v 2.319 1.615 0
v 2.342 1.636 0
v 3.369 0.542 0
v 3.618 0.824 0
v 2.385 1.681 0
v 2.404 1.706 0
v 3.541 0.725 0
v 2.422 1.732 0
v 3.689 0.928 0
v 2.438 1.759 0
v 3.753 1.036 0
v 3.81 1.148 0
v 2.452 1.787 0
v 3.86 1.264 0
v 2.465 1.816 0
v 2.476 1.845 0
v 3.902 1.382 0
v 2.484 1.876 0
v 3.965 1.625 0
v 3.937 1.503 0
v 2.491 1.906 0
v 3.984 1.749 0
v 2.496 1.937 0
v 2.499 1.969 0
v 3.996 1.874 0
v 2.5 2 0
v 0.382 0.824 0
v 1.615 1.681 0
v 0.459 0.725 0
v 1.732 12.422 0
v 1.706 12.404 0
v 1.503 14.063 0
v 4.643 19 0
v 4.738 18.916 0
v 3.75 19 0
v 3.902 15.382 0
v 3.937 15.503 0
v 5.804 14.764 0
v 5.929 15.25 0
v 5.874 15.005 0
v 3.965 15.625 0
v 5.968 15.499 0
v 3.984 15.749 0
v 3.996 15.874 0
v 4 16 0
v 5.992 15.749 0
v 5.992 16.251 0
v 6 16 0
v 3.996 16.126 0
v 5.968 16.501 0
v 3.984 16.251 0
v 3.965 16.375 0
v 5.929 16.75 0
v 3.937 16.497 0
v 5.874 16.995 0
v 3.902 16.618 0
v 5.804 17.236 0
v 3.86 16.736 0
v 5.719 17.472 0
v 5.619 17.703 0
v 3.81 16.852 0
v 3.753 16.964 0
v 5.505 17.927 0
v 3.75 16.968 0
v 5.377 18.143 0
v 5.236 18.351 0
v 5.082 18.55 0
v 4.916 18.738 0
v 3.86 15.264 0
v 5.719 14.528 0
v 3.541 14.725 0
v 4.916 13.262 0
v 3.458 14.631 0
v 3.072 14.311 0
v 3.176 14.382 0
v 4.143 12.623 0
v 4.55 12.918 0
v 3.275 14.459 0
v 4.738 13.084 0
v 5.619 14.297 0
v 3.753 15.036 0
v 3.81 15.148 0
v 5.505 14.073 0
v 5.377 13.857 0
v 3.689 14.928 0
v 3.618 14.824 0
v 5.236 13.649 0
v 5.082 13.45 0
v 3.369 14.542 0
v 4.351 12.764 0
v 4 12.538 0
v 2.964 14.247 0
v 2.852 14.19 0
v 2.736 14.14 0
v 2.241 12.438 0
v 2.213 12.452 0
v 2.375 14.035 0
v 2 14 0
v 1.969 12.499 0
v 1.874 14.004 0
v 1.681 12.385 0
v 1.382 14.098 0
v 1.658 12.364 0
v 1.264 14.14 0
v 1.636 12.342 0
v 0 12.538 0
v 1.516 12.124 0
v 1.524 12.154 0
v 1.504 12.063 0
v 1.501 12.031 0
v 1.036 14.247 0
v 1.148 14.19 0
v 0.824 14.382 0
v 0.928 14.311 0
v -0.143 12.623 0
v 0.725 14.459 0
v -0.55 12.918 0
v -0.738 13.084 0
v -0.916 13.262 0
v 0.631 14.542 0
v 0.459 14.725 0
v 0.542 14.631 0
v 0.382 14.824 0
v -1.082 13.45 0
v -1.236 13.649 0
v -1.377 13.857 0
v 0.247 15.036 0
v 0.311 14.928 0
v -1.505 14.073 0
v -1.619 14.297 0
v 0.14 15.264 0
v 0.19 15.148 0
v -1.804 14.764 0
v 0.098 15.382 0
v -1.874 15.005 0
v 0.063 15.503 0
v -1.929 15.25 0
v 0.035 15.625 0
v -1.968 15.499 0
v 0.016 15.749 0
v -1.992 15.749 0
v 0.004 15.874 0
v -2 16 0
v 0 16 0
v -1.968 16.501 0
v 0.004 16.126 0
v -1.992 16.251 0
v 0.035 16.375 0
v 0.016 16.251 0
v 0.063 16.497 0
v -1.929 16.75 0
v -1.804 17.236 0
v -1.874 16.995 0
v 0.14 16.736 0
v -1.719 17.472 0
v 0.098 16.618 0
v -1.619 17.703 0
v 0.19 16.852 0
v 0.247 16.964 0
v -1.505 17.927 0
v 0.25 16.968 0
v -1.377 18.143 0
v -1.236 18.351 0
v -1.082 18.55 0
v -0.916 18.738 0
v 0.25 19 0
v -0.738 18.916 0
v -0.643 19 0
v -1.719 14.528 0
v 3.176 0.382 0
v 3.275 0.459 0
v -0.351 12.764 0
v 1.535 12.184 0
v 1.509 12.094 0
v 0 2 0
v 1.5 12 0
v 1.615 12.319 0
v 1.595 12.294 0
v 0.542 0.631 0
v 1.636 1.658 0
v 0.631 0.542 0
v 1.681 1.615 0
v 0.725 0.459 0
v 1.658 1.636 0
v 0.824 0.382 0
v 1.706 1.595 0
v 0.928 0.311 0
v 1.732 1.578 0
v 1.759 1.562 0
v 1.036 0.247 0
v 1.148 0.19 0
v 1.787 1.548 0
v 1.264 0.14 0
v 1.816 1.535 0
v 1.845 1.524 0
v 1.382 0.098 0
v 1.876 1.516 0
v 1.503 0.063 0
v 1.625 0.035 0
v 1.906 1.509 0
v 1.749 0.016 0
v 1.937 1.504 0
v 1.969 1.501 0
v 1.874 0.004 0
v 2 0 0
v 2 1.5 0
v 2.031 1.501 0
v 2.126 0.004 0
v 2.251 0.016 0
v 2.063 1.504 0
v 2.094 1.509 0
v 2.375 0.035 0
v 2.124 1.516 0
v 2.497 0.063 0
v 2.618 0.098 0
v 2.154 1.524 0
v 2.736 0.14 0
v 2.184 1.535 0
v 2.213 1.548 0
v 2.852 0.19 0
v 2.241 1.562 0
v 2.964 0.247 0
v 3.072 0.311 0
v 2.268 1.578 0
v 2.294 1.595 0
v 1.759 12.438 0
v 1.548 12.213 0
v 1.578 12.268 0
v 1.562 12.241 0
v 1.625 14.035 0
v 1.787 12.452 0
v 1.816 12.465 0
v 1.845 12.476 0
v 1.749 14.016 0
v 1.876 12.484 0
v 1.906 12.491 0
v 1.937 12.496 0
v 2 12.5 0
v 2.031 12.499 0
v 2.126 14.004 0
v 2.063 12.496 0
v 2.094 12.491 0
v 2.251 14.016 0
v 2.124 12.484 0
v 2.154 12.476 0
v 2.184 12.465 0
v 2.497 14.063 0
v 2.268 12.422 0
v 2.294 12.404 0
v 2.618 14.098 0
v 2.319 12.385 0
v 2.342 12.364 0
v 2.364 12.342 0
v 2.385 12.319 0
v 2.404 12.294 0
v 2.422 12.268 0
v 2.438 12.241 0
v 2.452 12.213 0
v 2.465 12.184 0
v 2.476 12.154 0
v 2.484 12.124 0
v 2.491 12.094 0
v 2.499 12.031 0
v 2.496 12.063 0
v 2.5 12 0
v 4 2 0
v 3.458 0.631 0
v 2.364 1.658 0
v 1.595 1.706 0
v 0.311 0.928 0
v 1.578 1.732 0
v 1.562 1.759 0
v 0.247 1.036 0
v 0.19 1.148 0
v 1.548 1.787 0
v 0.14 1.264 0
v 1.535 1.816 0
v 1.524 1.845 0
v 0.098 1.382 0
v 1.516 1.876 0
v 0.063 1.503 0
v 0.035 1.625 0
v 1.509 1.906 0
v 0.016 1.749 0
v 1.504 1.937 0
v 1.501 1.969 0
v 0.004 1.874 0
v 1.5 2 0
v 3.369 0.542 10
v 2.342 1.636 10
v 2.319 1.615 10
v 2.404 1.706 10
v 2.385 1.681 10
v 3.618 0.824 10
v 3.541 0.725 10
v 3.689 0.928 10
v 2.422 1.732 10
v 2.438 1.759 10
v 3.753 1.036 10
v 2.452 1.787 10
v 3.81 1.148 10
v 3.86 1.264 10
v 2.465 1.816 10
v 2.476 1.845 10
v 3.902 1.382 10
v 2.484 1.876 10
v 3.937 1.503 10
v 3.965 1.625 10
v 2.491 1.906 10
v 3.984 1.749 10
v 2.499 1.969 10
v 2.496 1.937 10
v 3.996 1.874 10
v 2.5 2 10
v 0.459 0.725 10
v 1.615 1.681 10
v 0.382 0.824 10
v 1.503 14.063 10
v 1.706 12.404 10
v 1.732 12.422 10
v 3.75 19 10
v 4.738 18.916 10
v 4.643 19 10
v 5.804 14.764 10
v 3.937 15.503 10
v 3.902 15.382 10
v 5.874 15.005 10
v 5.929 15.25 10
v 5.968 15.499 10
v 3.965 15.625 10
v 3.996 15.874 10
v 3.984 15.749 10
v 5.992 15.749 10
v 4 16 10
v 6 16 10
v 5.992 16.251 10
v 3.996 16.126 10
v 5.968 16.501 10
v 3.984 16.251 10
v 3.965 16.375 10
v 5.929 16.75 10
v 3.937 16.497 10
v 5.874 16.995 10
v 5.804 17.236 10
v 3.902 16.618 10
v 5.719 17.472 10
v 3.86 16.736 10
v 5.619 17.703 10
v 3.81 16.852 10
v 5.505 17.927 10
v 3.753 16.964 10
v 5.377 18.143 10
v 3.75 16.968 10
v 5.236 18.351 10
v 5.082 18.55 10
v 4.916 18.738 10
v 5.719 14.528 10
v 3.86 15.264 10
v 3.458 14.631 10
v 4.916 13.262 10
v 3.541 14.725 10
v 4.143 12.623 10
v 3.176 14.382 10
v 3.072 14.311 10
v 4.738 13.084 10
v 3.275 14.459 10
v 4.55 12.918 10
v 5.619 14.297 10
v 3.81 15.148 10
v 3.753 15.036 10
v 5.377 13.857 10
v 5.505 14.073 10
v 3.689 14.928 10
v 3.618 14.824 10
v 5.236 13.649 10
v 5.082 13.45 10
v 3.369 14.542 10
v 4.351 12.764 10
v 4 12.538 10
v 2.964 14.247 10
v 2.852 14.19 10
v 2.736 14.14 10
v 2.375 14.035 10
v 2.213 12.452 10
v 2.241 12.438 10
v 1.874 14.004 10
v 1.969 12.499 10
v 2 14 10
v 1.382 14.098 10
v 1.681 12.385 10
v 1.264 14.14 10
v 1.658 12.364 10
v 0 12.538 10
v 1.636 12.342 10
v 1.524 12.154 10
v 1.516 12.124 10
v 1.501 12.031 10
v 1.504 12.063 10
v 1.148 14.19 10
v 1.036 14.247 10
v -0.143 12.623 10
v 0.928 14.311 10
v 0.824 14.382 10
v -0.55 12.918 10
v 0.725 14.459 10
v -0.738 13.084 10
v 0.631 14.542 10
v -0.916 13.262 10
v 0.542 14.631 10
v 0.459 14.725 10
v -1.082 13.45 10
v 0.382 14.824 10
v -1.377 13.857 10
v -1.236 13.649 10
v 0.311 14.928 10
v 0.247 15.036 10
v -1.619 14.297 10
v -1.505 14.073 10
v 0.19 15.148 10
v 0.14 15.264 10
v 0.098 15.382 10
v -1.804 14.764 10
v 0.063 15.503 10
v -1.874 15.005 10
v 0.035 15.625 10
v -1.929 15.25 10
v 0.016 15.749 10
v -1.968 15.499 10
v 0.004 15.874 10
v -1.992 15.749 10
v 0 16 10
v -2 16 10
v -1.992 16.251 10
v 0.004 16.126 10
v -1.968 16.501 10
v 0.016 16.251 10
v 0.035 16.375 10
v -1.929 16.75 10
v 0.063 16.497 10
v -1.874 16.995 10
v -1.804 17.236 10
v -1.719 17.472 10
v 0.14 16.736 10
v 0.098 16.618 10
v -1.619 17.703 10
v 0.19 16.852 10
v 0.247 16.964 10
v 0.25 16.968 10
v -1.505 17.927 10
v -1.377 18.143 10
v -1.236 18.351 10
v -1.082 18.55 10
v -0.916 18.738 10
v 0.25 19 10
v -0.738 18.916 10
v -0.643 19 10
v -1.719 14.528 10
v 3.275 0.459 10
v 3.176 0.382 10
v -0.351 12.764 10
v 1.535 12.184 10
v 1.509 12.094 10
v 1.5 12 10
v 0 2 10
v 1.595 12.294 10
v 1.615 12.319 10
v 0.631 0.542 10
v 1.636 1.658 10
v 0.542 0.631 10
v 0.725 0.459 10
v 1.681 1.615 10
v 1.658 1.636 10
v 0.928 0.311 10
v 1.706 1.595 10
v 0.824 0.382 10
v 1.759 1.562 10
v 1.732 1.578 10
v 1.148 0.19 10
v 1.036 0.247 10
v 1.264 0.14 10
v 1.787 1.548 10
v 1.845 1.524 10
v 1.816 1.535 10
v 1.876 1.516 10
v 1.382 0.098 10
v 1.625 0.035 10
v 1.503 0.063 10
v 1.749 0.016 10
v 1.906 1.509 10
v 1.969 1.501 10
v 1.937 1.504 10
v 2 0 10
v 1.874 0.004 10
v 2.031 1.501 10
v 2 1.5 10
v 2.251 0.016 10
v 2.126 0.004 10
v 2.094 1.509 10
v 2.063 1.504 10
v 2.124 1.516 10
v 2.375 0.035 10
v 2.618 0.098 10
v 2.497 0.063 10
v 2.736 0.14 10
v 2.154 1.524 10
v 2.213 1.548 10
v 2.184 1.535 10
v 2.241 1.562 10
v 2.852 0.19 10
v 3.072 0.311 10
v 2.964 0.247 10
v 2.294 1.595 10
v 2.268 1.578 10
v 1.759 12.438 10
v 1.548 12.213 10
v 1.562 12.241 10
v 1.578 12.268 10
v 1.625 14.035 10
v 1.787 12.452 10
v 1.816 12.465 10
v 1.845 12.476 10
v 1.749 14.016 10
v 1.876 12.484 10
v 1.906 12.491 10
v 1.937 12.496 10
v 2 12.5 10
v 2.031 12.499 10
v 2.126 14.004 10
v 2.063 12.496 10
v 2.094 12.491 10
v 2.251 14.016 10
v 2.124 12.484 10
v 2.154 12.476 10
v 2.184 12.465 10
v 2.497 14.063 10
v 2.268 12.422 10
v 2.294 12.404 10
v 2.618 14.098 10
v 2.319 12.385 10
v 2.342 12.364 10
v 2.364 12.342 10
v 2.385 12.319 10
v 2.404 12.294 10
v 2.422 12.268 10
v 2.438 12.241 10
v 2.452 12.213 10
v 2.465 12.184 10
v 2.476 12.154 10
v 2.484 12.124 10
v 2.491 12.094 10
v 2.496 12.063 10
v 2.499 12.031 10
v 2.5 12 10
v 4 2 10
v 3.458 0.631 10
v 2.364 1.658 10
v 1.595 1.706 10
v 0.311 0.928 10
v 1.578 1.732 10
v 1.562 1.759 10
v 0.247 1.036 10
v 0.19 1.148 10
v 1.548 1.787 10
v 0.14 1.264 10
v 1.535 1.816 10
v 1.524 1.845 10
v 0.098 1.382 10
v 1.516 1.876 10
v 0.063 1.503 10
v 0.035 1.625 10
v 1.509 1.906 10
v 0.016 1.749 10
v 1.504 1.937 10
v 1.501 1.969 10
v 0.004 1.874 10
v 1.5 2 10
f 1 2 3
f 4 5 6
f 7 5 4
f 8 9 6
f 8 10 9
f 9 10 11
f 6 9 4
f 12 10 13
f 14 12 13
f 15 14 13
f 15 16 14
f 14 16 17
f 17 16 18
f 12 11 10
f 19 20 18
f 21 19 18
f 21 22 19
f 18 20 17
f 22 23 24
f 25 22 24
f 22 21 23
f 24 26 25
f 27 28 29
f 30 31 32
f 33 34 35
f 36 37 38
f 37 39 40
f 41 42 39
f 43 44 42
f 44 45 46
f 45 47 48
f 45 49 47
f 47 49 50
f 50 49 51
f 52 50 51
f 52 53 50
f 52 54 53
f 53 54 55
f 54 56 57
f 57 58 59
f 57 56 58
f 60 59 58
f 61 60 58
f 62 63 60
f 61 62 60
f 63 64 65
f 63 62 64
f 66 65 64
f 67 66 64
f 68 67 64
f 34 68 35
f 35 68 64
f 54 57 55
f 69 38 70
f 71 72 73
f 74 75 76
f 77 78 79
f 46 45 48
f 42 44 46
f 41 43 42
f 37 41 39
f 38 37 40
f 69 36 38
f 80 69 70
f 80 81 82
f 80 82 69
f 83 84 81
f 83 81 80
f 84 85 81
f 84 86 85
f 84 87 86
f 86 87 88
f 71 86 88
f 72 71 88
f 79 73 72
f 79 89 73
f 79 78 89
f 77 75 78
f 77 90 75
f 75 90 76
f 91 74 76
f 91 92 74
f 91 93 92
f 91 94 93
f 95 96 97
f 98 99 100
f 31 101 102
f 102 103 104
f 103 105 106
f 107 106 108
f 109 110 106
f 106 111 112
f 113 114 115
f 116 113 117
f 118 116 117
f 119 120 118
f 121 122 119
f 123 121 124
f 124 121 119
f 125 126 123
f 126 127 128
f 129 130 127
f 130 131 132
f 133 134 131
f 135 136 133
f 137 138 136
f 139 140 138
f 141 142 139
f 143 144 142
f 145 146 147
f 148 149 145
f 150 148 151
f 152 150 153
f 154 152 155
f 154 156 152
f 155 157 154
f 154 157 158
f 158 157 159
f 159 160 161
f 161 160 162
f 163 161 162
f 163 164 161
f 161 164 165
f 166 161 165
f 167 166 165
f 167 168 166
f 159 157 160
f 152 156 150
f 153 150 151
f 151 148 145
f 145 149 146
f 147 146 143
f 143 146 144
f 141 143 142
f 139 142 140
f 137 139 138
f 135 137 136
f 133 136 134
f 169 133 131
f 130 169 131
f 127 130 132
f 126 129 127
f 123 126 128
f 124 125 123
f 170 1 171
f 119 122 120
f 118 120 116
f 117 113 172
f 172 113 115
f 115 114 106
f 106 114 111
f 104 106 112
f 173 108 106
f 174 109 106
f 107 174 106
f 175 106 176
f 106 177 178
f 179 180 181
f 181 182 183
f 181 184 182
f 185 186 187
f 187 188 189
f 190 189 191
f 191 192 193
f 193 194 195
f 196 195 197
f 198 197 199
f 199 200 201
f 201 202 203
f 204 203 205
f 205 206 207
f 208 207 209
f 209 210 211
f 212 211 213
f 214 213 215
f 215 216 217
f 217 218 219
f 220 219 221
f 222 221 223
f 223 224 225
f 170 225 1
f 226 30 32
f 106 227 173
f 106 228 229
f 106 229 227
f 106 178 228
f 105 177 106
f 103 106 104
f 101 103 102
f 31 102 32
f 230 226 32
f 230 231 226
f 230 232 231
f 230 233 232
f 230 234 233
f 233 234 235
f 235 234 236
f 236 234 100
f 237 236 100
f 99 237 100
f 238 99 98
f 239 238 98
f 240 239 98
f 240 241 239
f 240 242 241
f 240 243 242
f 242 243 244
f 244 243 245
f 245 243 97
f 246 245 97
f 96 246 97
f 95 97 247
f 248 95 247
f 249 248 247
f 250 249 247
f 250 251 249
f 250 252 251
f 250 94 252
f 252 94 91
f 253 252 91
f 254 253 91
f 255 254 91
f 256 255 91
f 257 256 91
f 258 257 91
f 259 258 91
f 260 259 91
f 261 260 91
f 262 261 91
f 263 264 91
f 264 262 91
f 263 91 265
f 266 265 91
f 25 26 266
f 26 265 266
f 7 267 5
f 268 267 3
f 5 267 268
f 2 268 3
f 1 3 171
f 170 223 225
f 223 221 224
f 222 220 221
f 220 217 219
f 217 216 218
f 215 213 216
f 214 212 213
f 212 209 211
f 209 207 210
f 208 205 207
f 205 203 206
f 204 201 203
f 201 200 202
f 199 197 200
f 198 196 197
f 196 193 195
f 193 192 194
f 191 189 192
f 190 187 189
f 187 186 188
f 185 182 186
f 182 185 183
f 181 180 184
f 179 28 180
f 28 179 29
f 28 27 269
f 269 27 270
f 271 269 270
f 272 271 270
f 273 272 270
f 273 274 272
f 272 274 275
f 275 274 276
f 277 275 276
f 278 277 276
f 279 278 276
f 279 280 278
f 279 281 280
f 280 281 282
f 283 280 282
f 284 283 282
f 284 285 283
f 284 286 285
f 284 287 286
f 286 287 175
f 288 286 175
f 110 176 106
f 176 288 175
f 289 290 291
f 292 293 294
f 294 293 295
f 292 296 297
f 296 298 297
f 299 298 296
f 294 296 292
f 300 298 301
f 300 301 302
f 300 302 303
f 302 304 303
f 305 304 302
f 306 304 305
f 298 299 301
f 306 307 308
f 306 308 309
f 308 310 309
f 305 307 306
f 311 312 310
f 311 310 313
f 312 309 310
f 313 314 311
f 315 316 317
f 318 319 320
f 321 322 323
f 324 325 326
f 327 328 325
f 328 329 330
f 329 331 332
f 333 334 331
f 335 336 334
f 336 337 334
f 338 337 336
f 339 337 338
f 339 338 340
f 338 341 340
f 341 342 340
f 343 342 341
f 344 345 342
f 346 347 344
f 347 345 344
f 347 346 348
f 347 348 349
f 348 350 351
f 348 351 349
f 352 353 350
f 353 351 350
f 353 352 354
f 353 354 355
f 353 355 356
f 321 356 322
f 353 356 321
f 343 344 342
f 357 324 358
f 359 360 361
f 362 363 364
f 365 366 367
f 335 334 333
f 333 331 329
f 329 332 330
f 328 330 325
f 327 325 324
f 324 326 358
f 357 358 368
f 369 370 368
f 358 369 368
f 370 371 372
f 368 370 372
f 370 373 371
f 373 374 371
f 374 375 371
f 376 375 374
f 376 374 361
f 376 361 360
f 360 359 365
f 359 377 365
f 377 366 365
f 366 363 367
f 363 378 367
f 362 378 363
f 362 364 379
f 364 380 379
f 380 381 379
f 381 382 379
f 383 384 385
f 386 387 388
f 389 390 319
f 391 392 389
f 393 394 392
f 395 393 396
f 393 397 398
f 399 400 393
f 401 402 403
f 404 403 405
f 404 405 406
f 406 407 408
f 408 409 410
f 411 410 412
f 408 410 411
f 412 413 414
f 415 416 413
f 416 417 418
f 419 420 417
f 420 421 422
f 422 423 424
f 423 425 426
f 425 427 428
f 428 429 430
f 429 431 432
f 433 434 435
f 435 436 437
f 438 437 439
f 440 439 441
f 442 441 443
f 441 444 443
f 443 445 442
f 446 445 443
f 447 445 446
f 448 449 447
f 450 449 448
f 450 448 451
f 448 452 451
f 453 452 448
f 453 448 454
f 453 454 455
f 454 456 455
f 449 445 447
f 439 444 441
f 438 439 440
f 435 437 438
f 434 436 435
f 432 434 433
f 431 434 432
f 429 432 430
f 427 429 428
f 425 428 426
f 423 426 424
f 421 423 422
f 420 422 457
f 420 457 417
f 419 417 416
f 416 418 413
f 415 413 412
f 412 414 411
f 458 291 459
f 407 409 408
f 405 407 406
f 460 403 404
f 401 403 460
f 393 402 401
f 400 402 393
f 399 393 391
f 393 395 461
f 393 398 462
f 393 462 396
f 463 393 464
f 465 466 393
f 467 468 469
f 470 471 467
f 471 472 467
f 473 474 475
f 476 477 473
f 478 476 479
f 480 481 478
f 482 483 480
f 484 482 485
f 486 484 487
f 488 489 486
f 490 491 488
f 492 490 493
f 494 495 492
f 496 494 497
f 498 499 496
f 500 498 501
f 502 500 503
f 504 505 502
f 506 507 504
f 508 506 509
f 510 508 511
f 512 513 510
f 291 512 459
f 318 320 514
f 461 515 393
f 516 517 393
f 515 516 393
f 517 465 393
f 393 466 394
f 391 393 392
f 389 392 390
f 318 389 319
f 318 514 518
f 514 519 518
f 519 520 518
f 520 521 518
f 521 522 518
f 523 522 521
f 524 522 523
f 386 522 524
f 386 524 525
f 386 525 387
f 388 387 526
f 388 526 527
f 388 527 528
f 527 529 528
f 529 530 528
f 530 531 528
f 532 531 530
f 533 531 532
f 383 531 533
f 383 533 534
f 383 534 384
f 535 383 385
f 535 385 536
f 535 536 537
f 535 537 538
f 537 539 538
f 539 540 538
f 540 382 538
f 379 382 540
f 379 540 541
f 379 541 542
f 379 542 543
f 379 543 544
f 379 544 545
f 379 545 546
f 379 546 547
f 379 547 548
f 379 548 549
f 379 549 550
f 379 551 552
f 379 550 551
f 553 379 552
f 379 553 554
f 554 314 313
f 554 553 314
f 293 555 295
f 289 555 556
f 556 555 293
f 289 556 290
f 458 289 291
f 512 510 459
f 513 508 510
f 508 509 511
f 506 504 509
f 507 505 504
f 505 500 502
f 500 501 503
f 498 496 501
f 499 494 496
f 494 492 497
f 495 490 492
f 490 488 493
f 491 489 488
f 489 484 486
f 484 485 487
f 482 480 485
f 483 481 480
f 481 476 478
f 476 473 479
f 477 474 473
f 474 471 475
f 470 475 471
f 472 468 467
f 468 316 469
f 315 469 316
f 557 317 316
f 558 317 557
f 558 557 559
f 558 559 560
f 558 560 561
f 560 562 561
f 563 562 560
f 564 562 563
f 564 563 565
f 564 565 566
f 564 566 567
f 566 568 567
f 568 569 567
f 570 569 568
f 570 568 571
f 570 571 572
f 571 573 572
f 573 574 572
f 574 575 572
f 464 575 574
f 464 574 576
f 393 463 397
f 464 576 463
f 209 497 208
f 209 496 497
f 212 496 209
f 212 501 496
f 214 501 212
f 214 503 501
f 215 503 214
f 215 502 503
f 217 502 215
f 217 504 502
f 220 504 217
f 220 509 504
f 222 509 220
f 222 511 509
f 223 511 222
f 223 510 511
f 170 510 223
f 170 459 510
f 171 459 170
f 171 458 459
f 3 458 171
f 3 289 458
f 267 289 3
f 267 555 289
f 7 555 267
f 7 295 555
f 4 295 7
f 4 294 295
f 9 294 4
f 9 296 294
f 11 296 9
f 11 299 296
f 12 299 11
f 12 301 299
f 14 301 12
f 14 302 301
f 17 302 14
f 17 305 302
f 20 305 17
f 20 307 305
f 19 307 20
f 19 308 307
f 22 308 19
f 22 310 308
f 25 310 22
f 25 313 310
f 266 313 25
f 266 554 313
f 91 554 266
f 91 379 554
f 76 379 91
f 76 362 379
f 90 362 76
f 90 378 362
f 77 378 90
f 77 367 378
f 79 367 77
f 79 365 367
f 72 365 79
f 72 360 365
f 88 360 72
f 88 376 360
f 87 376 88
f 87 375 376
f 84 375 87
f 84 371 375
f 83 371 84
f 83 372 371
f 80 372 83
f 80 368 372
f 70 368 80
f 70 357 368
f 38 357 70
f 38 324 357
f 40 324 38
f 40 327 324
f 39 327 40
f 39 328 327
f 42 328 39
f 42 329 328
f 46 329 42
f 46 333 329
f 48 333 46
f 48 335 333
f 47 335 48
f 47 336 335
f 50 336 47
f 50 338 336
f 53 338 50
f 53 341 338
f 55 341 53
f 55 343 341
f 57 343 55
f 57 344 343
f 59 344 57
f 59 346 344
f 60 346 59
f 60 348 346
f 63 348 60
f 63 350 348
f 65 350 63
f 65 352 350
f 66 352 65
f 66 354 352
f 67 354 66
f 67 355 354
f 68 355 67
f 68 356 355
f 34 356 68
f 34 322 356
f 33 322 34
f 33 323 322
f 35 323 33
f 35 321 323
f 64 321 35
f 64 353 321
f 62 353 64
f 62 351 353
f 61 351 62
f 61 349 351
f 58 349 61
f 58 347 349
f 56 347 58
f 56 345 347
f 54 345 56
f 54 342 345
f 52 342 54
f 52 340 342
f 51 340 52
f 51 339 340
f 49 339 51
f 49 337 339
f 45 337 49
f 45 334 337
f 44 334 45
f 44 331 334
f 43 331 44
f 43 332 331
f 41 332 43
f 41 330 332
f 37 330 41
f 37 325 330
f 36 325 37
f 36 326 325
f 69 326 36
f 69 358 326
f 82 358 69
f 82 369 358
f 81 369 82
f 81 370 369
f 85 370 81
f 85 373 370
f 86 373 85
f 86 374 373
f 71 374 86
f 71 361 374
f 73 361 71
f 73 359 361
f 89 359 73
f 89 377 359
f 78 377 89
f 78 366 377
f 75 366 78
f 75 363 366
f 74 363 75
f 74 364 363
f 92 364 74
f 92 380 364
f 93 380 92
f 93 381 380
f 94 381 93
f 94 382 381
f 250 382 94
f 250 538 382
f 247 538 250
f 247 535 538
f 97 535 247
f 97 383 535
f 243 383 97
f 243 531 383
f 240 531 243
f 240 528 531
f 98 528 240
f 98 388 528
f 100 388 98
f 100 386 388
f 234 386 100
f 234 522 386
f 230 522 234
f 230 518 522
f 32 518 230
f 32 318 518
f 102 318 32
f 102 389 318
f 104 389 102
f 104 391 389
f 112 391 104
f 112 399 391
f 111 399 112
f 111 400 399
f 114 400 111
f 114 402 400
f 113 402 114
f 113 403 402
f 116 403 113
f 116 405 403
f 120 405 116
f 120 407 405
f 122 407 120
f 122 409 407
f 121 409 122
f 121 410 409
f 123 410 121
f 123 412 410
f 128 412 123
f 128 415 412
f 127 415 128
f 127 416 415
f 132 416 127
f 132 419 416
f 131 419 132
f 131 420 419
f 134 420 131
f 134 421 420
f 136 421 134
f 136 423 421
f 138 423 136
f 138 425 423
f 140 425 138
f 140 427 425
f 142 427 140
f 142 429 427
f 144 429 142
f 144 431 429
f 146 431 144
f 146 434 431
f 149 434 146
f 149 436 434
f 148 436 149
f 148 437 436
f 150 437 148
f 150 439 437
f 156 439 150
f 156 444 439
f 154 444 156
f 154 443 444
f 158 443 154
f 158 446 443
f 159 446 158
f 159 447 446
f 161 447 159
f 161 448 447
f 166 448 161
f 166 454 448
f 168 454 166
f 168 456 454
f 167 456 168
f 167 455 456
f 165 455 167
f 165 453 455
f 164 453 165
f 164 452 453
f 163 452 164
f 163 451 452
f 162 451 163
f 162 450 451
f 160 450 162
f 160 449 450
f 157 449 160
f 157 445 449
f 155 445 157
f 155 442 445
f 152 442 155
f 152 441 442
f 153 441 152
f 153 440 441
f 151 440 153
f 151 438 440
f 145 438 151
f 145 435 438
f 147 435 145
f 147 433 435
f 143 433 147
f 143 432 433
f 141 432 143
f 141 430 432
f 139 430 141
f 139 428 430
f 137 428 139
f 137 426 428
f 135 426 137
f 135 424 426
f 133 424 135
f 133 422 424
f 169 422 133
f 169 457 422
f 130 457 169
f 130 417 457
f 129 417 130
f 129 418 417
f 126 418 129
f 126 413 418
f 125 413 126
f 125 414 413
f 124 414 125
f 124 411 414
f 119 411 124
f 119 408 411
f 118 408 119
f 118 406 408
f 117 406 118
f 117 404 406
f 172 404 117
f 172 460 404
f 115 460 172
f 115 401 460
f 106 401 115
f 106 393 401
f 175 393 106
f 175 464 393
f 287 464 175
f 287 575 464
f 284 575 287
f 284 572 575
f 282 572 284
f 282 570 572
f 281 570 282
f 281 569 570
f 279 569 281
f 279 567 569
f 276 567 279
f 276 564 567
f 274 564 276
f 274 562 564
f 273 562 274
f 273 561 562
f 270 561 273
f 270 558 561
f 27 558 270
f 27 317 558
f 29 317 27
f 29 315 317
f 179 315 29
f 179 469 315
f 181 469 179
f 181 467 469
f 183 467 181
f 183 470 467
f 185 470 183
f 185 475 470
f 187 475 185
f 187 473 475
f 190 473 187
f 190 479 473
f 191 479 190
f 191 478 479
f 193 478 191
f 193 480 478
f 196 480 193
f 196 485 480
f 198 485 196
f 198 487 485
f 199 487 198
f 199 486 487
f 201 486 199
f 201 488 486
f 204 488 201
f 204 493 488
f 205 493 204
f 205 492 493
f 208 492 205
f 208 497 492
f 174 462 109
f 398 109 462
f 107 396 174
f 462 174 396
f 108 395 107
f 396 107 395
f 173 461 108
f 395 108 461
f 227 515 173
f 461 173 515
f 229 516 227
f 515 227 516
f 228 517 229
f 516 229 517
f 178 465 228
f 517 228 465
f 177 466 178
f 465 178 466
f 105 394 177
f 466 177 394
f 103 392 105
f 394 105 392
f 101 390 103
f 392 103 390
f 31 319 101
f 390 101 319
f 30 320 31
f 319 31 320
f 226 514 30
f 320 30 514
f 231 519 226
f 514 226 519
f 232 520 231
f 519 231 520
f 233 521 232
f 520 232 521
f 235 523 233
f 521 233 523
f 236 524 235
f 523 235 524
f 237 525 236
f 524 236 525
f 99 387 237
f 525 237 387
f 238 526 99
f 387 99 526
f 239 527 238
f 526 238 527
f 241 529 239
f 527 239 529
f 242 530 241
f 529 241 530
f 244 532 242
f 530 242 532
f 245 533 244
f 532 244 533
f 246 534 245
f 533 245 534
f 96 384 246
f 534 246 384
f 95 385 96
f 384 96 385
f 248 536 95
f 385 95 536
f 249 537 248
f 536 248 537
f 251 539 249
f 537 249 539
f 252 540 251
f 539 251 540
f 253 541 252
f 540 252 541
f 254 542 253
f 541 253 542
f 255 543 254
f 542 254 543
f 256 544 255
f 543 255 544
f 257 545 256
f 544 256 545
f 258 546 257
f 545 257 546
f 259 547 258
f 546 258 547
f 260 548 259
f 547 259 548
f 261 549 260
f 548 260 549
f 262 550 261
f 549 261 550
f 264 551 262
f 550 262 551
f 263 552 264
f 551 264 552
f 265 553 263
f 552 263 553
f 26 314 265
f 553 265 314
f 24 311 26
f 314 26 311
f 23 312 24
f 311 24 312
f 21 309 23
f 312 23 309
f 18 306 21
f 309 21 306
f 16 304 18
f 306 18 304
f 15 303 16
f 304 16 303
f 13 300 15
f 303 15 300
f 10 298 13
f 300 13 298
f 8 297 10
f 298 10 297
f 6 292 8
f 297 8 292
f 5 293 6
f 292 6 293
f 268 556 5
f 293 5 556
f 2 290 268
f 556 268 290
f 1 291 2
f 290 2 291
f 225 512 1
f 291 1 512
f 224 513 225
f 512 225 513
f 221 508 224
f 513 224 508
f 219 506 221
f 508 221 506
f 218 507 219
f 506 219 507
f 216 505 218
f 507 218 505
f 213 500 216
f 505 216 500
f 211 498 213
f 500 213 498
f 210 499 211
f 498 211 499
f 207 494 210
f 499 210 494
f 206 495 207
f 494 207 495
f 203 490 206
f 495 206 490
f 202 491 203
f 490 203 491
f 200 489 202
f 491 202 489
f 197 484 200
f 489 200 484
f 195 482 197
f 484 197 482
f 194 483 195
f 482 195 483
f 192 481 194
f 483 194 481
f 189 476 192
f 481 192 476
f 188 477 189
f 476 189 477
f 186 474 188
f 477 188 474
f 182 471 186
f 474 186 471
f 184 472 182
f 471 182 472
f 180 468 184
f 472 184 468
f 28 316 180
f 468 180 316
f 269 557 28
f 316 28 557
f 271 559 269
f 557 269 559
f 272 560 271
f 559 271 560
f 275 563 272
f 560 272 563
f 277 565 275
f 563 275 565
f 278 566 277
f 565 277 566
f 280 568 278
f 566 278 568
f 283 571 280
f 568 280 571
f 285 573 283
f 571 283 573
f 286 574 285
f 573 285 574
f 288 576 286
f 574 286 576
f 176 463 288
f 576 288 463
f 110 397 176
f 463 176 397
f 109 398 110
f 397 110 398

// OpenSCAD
$fn = 100;

linear_extrude(height = 10) {
    difference() {
        union() {
            translate([2, 2]) {
                circle(2);
            }
            translate([0, 2]) {
                square([4, 12]);
            }
            translate([2, 16]) {
                circle(4);
            }
        }
        translate([2, 2]) {
            circle(0.5);
        }
        translate([2, 12]) {
            circle(0.5);
        }
        translate([1.5, 2]) {
            square([1, 10]);
        }
        translate([2, 16]) {
            circle(2);
        }
        translate([0.25, 16]) {
            square([3.5, 8]);
        }
        translate([-5, 19]) {
            square(15, 15);
        }
    }
}
